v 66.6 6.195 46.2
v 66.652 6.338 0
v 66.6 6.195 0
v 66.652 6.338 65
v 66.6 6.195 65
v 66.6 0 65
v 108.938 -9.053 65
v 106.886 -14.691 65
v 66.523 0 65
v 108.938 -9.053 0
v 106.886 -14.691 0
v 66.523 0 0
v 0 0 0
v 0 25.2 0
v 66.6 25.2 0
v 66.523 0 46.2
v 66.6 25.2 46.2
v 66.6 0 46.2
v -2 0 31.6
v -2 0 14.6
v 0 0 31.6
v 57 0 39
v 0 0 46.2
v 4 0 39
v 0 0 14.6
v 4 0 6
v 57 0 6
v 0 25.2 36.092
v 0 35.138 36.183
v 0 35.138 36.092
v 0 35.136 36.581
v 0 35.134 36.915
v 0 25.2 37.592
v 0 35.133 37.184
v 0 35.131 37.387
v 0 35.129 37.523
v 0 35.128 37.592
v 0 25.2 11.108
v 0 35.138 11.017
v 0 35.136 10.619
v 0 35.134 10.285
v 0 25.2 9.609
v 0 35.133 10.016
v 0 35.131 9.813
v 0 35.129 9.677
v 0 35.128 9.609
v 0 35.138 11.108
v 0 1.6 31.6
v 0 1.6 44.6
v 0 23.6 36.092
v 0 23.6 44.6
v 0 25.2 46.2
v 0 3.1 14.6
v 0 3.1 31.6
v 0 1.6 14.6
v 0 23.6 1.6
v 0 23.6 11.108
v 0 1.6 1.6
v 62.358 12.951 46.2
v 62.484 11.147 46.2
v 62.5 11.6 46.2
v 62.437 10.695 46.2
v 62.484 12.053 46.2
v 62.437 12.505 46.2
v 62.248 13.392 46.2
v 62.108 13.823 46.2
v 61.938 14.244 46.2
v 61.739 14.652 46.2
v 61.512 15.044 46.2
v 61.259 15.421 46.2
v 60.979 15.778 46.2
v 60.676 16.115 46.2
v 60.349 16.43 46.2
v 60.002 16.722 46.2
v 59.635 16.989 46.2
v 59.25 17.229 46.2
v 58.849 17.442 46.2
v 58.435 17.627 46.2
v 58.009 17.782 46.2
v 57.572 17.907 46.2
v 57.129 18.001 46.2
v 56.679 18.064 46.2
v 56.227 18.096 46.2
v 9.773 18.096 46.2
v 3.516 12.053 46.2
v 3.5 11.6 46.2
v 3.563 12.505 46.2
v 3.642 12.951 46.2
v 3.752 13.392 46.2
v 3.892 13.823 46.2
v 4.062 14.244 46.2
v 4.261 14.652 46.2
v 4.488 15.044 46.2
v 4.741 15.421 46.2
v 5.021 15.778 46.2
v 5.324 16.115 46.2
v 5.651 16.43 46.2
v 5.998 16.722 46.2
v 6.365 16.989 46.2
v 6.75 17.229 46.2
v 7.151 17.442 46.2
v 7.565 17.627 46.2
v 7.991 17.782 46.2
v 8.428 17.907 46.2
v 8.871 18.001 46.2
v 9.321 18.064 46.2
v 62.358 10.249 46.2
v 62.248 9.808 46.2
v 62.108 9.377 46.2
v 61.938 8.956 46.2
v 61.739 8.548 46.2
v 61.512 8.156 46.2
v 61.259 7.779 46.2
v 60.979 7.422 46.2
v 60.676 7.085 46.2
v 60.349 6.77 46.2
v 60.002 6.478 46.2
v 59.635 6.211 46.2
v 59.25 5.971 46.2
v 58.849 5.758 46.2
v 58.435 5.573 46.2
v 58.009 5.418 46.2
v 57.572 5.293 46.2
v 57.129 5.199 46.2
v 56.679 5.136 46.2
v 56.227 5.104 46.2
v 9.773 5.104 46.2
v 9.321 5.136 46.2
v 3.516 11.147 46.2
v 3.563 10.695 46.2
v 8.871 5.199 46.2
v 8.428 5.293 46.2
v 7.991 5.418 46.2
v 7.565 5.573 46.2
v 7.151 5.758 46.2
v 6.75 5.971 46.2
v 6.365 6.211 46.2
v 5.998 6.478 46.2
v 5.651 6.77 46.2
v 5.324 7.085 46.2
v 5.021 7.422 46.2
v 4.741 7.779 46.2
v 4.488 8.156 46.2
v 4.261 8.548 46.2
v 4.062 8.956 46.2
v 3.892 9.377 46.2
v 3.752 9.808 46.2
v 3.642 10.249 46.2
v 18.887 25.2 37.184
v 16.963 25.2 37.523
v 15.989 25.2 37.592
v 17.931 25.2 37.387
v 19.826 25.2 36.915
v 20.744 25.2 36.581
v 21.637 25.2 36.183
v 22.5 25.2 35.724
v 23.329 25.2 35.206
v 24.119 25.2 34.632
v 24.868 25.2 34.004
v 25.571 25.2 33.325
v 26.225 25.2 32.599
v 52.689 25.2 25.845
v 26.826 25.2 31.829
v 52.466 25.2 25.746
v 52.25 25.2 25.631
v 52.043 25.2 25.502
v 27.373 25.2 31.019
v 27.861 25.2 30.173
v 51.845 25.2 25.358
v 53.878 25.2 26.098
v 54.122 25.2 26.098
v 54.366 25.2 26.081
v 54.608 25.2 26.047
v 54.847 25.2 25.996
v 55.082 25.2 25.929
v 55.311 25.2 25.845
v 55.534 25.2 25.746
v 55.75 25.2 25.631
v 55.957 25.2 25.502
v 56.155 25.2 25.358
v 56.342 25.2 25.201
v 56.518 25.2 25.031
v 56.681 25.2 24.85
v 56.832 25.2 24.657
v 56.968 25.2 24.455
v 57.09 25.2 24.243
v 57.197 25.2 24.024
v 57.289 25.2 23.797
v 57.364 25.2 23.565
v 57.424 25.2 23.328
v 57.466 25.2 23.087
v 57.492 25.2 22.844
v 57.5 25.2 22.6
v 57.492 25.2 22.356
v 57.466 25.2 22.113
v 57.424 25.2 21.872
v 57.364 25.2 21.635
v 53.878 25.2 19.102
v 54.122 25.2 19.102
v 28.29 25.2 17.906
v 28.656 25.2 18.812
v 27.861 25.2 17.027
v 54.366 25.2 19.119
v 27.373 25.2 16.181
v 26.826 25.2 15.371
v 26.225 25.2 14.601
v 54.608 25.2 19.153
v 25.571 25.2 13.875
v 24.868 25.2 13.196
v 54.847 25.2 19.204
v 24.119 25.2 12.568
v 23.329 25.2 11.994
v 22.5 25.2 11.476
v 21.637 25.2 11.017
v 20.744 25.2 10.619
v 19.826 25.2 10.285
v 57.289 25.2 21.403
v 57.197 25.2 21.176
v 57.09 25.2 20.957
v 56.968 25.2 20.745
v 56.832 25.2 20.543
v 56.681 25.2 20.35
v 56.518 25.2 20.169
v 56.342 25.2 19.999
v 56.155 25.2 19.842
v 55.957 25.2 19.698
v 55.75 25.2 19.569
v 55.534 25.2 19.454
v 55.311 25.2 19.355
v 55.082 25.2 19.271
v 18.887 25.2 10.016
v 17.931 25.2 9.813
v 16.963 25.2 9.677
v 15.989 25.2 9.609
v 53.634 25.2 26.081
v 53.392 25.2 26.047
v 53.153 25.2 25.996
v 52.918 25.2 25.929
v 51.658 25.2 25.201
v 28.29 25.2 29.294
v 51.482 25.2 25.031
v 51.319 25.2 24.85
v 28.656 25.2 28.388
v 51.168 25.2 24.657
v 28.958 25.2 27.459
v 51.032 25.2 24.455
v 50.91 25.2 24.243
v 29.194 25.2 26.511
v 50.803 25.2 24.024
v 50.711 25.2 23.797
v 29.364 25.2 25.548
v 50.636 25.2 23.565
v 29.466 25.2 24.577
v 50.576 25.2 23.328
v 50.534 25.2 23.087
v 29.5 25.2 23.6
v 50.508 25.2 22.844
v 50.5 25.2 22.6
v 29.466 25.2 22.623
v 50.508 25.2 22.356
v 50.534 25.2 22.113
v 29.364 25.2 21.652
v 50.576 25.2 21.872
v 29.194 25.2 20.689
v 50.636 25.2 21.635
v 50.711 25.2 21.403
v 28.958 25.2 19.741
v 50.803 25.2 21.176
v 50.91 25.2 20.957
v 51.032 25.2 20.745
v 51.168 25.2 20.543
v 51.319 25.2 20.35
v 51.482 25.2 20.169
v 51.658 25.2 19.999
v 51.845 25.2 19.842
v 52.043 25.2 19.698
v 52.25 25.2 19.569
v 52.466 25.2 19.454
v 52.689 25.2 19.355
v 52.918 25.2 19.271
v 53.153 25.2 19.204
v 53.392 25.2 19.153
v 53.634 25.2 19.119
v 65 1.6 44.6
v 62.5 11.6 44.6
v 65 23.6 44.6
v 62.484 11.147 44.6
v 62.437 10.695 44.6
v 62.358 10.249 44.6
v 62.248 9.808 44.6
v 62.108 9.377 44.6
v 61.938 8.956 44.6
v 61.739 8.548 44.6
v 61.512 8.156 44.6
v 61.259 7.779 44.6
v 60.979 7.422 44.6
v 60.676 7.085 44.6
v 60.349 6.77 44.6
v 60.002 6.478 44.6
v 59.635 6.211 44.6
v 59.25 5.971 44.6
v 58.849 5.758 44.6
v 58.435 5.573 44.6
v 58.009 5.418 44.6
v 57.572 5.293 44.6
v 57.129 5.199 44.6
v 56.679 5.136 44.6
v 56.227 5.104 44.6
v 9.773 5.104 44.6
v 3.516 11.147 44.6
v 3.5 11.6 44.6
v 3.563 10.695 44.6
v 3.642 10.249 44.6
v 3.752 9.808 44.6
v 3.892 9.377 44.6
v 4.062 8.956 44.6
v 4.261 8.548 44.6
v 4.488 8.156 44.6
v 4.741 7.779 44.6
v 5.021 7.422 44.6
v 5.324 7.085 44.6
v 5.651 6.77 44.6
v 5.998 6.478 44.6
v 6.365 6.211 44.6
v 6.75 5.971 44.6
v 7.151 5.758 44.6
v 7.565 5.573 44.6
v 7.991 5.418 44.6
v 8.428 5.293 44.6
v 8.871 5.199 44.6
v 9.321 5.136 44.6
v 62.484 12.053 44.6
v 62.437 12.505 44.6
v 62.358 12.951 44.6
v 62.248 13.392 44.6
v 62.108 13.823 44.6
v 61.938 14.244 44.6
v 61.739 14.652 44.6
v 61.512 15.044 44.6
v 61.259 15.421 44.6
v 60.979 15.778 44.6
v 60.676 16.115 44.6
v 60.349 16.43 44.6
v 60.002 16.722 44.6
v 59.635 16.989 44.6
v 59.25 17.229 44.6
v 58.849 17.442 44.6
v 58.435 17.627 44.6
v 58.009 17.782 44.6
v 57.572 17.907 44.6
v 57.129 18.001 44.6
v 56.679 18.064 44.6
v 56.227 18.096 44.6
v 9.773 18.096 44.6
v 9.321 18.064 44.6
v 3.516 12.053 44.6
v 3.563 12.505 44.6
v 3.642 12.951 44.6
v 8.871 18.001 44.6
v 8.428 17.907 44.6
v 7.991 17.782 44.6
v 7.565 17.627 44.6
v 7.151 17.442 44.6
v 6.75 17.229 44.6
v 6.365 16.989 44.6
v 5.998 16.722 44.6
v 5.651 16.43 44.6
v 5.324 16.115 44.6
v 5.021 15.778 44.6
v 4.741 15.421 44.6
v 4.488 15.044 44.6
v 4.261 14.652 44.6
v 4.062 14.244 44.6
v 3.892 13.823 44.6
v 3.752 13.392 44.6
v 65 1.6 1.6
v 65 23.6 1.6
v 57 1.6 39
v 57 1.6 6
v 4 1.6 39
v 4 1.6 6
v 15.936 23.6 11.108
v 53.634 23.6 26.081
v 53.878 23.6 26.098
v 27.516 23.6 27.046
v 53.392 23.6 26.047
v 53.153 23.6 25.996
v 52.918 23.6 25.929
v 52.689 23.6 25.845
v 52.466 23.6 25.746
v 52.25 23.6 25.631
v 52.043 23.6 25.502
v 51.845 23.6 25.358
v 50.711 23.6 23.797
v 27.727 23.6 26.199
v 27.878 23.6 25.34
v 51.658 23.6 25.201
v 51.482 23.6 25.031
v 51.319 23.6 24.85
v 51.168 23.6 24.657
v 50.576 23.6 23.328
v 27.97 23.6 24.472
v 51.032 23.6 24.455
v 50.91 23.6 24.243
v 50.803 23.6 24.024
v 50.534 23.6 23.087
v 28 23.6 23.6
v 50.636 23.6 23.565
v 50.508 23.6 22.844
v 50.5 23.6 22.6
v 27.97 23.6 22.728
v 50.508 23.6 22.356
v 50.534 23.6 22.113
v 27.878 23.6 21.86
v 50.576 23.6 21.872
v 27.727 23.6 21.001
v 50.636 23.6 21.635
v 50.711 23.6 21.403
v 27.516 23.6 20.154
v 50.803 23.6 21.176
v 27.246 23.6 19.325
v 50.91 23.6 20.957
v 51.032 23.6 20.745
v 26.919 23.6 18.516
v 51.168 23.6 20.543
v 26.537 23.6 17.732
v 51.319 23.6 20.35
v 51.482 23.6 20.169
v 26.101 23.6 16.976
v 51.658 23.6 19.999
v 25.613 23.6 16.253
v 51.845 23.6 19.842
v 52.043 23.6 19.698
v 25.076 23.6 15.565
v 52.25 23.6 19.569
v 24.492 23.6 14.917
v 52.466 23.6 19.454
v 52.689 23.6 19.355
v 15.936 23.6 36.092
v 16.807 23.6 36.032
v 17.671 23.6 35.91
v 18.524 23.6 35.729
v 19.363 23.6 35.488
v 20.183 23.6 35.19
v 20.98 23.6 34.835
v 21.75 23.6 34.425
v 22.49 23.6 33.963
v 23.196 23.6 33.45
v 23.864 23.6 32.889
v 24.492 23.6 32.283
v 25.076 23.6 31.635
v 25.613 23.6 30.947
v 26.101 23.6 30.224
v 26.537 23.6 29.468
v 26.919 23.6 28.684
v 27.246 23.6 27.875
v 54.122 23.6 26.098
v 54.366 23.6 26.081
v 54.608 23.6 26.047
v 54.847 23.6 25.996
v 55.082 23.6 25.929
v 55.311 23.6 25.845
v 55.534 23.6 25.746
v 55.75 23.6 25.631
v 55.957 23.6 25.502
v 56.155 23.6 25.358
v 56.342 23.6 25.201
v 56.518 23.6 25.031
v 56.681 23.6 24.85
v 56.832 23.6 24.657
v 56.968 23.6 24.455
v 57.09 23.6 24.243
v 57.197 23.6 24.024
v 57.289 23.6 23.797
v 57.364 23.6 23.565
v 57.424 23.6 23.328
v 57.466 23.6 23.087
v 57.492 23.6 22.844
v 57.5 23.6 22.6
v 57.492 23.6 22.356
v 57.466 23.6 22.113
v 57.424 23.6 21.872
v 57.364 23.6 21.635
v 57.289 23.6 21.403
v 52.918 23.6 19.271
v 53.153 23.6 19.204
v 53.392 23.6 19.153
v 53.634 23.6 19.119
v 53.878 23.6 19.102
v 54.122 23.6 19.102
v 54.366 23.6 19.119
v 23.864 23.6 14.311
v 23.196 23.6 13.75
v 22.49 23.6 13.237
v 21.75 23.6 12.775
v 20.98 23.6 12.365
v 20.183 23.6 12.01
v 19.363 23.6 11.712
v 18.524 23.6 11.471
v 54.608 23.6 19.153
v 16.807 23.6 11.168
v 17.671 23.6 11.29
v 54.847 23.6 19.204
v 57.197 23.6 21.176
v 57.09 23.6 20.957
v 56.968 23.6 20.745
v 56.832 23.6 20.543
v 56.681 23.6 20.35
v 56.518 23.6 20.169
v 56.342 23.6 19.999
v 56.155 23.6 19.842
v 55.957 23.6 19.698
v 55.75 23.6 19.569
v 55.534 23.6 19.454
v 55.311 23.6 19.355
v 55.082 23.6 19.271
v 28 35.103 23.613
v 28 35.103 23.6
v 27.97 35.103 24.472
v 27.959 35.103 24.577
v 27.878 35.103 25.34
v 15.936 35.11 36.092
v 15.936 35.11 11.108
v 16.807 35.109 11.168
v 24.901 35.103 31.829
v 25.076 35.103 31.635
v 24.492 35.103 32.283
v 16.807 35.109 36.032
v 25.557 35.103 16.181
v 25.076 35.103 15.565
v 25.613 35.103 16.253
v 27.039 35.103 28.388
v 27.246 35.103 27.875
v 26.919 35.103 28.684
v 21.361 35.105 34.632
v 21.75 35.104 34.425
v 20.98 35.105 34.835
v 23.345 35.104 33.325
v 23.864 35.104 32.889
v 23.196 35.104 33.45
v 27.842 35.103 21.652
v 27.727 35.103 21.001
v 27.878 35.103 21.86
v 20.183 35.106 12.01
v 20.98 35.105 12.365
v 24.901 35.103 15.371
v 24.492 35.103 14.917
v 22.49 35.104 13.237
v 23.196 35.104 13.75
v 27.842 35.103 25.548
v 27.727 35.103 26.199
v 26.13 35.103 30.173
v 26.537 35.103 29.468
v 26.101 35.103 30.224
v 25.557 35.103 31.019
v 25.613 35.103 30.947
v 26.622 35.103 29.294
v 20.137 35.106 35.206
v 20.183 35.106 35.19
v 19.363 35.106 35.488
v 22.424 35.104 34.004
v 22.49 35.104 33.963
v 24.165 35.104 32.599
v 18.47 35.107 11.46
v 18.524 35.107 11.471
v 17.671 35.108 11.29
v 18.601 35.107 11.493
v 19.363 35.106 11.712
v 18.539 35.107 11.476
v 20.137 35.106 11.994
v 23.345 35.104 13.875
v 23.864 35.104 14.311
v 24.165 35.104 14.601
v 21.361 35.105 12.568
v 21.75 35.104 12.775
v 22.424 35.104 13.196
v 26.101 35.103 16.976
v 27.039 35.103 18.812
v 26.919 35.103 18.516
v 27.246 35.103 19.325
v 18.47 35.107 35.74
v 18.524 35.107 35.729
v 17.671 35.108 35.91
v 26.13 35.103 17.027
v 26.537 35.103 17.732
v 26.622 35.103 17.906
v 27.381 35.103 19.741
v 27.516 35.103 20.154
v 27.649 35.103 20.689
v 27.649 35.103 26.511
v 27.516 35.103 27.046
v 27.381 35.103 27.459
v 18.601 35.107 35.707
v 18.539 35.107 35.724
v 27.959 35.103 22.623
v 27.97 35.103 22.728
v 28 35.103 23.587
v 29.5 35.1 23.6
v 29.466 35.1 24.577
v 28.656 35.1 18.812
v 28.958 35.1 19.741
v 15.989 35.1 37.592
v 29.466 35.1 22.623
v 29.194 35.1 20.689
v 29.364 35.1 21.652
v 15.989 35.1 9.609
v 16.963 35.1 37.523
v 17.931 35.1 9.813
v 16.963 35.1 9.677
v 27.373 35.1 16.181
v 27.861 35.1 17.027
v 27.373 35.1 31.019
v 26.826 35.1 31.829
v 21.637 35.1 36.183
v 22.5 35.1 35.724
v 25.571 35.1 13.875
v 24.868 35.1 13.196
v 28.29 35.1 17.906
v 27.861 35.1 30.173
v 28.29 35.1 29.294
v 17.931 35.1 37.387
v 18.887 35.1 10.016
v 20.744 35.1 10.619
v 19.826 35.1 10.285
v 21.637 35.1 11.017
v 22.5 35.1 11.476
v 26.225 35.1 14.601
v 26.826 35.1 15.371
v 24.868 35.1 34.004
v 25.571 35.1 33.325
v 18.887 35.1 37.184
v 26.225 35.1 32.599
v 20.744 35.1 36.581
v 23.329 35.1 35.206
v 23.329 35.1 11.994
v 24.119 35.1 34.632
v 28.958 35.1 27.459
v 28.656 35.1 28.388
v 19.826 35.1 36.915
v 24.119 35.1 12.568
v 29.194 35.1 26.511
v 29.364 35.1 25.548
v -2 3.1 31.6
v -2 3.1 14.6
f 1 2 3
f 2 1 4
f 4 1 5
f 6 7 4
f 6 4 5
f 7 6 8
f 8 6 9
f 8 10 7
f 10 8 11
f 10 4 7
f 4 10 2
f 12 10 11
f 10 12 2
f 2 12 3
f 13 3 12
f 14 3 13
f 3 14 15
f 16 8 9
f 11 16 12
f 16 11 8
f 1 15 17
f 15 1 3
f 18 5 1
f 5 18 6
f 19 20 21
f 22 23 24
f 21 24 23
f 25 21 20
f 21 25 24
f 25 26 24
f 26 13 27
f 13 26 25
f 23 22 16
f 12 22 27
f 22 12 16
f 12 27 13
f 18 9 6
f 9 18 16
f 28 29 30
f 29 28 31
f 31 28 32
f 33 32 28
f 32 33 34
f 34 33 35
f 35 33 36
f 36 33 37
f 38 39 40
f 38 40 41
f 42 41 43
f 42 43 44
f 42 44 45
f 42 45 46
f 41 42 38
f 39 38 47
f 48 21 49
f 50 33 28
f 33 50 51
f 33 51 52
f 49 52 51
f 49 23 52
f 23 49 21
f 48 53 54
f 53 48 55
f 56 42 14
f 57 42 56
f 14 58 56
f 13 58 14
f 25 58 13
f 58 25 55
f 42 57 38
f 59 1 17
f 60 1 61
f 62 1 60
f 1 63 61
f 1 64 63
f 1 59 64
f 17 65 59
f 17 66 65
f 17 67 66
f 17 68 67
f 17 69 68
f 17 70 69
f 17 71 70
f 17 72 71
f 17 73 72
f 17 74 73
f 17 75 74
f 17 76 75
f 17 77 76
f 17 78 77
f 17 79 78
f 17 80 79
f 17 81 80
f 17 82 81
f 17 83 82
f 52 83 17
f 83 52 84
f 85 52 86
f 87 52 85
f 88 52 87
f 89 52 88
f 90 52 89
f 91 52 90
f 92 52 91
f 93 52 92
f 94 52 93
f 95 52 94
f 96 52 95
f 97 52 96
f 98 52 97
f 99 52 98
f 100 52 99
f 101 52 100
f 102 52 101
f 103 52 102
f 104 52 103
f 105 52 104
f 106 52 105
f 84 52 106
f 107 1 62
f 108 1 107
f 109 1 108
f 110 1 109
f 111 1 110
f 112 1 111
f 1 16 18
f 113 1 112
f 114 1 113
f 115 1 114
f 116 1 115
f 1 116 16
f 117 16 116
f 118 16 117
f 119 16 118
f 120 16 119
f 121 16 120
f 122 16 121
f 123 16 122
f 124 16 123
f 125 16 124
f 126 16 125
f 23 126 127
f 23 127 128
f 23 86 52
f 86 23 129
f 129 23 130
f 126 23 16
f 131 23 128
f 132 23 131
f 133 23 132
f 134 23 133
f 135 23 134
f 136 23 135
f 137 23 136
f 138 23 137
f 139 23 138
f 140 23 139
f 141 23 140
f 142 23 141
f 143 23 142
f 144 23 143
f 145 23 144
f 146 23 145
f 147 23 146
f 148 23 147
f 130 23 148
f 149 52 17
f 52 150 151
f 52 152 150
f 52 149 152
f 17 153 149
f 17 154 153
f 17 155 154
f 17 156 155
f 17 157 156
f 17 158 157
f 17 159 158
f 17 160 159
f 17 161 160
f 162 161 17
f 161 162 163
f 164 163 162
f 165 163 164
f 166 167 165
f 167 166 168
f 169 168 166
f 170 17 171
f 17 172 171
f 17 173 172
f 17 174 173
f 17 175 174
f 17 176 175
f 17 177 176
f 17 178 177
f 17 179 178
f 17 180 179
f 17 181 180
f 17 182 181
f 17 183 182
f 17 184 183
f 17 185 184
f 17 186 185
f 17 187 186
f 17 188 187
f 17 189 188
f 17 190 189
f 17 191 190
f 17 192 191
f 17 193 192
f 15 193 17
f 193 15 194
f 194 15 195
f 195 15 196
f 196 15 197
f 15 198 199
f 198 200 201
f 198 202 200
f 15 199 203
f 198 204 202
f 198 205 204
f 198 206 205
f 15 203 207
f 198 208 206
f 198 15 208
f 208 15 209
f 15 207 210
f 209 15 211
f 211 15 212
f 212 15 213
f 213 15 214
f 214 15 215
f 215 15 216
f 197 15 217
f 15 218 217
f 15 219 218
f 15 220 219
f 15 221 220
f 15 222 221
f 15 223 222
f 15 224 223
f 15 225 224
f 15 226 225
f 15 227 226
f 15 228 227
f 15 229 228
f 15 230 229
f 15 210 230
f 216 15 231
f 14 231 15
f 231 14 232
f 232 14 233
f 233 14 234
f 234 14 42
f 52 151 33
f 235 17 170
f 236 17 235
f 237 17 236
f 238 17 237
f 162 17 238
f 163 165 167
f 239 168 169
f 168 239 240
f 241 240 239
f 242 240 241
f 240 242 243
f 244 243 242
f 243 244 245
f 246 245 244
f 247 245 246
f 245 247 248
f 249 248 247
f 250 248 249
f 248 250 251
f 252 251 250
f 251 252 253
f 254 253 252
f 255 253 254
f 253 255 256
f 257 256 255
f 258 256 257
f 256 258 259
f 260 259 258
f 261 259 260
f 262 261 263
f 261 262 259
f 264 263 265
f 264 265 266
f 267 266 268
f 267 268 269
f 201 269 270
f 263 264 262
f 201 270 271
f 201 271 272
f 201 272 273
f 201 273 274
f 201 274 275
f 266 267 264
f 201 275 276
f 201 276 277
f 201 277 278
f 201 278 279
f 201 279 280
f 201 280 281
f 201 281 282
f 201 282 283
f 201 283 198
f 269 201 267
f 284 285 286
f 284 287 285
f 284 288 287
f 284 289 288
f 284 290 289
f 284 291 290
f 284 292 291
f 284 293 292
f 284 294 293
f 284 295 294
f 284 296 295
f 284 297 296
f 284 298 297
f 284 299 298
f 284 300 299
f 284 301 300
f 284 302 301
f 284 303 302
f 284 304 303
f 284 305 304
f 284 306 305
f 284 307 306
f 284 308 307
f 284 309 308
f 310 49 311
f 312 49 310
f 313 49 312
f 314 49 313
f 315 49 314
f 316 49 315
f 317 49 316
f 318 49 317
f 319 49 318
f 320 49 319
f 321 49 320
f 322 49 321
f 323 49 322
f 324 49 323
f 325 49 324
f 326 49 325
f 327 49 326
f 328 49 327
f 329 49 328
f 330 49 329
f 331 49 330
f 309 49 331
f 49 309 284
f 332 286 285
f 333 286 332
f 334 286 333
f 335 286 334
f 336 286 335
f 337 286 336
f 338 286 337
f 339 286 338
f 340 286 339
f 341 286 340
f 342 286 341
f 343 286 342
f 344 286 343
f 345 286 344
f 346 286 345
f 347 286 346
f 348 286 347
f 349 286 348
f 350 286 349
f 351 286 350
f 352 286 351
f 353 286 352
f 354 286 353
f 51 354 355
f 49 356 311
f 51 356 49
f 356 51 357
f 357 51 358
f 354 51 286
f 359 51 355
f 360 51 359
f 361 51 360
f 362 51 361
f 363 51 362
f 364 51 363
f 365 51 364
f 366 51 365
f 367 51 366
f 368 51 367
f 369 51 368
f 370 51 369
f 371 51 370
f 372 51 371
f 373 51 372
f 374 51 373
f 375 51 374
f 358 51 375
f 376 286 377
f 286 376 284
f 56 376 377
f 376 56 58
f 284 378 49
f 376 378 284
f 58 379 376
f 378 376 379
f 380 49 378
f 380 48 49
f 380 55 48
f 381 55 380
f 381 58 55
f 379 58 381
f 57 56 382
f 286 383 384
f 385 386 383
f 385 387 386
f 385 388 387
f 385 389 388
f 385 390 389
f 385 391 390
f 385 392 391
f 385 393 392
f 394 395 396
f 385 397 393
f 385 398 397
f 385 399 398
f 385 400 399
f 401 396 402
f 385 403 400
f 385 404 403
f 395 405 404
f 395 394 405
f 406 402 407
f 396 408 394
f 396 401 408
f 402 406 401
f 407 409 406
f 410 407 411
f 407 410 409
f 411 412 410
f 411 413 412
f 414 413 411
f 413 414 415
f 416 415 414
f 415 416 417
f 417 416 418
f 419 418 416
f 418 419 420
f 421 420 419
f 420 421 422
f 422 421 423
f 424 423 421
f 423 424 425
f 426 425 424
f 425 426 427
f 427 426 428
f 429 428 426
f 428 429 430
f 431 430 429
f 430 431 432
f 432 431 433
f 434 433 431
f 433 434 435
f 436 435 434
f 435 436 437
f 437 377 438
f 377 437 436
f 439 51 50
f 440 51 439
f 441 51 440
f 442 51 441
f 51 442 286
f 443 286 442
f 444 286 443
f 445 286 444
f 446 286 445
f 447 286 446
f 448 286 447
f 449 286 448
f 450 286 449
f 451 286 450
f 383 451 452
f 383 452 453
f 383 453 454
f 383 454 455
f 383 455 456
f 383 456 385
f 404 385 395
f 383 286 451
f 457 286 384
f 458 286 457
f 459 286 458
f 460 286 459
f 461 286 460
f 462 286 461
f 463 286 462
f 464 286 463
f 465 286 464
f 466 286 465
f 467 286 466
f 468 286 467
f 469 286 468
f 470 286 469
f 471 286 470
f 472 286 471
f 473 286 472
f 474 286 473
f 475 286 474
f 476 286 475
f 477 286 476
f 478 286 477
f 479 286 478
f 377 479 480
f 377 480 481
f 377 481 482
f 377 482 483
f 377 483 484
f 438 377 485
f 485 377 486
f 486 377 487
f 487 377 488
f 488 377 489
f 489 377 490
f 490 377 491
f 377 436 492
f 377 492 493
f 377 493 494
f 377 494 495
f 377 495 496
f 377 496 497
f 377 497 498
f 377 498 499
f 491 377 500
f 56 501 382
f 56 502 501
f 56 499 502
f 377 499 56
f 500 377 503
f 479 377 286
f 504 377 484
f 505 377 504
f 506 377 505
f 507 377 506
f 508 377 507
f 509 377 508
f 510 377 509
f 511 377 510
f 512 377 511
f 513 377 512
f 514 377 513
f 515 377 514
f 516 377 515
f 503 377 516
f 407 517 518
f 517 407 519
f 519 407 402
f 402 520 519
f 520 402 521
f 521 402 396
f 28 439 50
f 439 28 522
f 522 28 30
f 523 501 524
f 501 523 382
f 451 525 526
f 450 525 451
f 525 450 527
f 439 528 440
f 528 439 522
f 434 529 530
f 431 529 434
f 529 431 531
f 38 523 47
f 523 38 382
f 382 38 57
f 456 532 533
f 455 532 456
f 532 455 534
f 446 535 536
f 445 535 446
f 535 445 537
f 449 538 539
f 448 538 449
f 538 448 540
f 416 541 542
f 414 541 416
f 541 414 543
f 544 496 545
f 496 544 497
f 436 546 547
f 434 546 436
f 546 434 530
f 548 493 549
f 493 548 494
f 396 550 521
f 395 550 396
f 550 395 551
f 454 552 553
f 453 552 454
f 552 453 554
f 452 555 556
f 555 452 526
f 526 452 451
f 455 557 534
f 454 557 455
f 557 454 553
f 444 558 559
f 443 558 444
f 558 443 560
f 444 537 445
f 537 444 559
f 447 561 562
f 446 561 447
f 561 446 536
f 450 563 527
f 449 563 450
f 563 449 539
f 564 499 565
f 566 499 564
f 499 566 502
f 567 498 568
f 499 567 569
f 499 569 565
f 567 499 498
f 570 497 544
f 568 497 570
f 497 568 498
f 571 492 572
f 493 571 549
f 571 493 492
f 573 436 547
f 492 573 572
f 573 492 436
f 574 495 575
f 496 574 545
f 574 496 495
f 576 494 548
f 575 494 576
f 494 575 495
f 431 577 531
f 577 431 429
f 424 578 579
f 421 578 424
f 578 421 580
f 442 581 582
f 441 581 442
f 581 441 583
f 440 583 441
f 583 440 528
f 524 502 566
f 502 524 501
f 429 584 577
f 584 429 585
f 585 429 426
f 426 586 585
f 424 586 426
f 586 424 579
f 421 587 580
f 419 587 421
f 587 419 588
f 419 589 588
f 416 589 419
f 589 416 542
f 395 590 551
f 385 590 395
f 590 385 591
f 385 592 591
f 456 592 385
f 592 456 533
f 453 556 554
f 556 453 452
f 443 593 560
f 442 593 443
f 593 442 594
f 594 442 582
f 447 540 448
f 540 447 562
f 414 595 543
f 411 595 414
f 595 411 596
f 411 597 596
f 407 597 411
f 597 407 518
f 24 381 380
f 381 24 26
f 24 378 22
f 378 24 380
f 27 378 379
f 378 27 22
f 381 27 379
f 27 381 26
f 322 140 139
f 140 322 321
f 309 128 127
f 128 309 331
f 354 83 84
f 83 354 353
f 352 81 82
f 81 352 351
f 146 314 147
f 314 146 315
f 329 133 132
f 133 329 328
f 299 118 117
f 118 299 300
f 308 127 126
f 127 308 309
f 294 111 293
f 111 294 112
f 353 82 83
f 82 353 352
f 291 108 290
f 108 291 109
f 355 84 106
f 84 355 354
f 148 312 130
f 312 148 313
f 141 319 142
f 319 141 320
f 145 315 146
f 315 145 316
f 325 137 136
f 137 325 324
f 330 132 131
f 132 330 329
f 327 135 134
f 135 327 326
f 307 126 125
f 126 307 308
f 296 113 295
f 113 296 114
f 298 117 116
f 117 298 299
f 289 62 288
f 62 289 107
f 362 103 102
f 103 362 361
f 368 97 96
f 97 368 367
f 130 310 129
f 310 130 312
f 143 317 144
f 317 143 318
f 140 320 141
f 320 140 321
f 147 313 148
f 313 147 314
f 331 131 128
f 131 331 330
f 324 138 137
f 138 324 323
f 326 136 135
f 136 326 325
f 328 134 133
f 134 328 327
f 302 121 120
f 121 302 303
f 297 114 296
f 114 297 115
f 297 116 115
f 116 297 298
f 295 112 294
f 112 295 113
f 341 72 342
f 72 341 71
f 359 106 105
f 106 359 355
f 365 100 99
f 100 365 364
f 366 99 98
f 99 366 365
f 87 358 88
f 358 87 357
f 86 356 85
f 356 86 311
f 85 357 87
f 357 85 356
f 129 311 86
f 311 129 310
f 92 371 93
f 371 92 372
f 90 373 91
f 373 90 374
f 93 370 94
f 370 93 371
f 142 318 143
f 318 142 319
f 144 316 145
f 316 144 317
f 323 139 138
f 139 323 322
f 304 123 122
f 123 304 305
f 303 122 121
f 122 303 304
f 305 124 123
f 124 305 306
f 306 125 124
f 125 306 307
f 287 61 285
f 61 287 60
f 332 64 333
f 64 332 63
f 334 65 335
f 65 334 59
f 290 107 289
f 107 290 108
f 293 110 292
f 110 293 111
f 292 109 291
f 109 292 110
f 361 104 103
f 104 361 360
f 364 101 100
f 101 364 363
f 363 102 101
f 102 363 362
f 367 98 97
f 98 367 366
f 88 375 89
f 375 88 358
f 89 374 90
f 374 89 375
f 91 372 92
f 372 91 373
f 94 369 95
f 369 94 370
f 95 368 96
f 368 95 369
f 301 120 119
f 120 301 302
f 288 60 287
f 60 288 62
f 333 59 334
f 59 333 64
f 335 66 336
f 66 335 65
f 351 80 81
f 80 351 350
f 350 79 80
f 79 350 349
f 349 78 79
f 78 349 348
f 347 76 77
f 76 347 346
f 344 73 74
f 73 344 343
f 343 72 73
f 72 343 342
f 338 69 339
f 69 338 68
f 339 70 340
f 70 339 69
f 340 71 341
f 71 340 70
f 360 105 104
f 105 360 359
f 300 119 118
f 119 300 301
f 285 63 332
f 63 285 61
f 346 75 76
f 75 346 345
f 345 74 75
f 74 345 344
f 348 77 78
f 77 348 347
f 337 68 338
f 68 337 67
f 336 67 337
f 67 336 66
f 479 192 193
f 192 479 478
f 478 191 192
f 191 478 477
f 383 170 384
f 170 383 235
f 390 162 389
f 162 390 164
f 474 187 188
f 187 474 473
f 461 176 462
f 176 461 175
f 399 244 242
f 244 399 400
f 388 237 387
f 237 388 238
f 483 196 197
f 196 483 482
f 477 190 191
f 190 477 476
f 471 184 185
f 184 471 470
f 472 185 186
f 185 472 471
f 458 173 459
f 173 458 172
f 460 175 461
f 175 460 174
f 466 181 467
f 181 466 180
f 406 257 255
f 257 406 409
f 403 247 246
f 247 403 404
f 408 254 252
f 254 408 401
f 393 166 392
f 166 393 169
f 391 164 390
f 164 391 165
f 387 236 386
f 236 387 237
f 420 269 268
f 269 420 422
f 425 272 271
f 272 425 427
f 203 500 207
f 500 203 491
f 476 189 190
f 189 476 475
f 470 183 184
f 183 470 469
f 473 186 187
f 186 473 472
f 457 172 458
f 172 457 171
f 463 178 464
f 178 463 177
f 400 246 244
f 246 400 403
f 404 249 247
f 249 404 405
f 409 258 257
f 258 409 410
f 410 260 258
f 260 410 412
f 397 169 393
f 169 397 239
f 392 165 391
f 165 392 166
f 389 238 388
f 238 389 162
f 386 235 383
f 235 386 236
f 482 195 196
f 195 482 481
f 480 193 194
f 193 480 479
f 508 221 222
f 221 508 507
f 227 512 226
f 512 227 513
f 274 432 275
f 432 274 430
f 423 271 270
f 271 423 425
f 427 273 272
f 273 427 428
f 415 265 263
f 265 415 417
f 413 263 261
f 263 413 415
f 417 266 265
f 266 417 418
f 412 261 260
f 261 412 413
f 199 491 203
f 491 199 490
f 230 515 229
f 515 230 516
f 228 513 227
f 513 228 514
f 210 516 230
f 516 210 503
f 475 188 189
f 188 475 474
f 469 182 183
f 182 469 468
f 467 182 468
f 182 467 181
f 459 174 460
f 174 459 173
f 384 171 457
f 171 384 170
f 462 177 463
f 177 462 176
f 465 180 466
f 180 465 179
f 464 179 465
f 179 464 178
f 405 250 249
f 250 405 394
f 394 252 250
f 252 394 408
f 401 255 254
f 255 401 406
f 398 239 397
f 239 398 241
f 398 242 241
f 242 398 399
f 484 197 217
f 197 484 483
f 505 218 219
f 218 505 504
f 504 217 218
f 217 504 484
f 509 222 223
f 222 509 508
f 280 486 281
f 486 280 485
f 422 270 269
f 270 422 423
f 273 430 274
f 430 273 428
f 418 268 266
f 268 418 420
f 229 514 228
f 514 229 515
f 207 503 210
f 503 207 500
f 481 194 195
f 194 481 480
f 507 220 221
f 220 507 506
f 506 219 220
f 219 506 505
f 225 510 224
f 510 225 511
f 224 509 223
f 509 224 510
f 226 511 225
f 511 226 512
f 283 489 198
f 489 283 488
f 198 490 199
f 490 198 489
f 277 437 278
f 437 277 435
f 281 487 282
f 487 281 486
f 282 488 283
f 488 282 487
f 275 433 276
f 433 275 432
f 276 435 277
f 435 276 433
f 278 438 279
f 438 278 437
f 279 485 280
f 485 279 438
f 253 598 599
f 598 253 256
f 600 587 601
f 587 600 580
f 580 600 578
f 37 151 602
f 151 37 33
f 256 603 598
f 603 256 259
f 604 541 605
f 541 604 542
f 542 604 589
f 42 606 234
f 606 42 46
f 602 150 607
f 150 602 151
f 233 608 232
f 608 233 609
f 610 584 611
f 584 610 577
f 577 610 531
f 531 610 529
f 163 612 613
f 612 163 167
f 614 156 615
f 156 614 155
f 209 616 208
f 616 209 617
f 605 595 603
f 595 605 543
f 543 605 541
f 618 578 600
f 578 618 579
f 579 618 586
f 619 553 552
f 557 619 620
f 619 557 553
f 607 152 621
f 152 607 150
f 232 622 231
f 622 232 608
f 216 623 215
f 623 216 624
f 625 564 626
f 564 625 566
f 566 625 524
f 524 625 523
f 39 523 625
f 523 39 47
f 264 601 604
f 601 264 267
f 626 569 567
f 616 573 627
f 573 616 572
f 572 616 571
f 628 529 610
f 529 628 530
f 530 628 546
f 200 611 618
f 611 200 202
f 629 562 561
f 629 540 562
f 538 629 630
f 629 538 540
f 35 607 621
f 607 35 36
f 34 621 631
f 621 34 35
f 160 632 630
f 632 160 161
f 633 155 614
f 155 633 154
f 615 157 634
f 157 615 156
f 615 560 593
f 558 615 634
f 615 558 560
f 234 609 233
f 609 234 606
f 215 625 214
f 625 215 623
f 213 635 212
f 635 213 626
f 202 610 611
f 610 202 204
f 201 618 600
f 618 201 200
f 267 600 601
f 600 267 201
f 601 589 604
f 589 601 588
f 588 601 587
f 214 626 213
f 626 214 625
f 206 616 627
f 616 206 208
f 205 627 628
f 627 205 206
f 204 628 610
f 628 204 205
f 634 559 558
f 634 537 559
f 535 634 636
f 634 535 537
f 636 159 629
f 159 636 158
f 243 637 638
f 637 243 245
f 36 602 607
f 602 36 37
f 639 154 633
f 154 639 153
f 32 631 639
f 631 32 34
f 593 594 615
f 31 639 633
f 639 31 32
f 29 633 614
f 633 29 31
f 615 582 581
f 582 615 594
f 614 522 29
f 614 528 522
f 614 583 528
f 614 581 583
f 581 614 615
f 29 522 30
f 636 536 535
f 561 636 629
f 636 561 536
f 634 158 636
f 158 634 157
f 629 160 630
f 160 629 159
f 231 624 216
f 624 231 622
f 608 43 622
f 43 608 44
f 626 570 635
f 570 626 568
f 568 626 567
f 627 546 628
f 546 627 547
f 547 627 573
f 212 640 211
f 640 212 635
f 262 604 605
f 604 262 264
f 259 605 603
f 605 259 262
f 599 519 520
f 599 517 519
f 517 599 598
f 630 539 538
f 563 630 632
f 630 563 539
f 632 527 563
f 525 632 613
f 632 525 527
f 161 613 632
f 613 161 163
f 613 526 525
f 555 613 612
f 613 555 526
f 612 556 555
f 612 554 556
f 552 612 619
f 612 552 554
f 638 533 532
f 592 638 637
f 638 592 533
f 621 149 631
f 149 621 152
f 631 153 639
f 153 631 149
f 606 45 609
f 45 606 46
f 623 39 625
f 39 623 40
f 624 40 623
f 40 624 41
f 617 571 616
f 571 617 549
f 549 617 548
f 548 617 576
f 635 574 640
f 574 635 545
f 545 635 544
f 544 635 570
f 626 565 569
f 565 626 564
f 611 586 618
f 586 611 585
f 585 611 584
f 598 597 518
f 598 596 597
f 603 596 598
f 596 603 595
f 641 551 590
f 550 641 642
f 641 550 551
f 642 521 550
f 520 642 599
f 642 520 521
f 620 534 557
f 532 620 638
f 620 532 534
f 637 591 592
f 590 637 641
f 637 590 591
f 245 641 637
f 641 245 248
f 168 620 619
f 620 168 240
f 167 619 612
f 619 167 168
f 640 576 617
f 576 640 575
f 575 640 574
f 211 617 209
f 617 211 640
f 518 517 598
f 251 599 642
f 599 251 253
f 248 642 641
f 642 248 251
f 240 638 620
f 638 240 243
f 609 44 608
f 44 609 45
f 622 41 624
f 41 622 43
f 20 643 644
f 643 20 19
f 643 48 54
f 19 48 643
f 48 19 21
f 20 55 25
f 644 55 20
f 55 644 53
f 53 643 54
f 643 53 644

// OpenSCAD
// Holder for Xiaomi Yi 4K action camera for Zhiyun Smooth Q

$fn=90;

nozzleD=0.4;
wallCount=4;
wallThickness=wallCount*nozzleD;
wallThickness2=wallThickness*2;
e=0.1; // epsilon
e2=e*2;

cameraHolder();

module cameraHolder() {
    difference() {
        cube(holderBody);
        translate([-e,wallThickness,wallThickness])
            cameraBody();
        cameraLenseCut();
        screenCut();
        okButtonCut();
        powerButtonCut();
    }
    hook();
    lensProtection();
    holderPlate();
}

cameraBodyX=65;
cameraBodyY=22;
cameraBodyZ=43;
cameraBody=[cameraBodyX+e,cameraBodyY,cameraBodyZ];
holderBody=[cameraBodyX+wallThickness,cameraBodyY+wallThickness2,cameraBodyZ+wallThickness2];

module cameraBody() {
    cube(cameraBody);
}

cameraLenseD=24+1;
cameraLenseR=cameraLenseD/2;
cameraLenseX=3+cameraLenseR;
cameraLenseZ=9.5+wallThickness+cameraLenseR;
cameraLenseY=wallThickness2+cameraBodyY+e;

module cameraLense() {
    translate([cameraLenseX,cameraLenseY+30,cameraLenseZ])
        rotate([90,0,0])
            cylinder(d=cameraLenseD,h=wallThickness2+30);
}

module cameraLenseCut() {
    hull() {
        cameraLense();
        translate([-100,0,0]) cameraLense();
    }
}

module screenCut() {
    translate([4,-e,6])
        cube([53,wallThickness+e2,33]);
}

module okButtonCut() {
    hull() {
        translate([10, 10+wallThickness, cameraBodyZ+wallThickness-e])
            cylinder(d=13,wallThickness+e2);
        translate([56, 10+wallThickness, cameraBodyZ+wallThickness-e])
            cylinder(d=13,wallThickness+e2);
    }
}

module powerButtonCut() {
    translate([54,cameraBodyY+wallThickness2+e,21+wallThickness])
    rotate([90,0,0])
        cylinder(d=7,h=wallThickness+e2);
}

module hook() {
    x=2;
    y=1.5;
    z=17;
    translate([-x,0,cameraBodyZ/2-z/2+wallThickness])
        cube([x,y+wallThickness,z]);
}

module lensProtection() {
    h=10;
    d=28;
    difference() {
        hull() {
            translate([cameraLenseX,cameraLenseY+h-2*e,cameraLenseZ])
                rotate([90,0,0])
                    cylinder(d=d,h=h);
            translate([-100,cameraLenseY+h,cameraLenseZ])
                rotate([90,0,0])
                    cylinder(d=d,h=h);            
        }
        cameraLenseCut();
        translate([-200,0,0]) cube([200,200,200]);
    }
}

module holderPlate() {
    x=45;
    y=6;
    z=65;
    difference() {
        translate([cameraBodyX+wallThickness-y/3,wallThickness-0.9,0])
            rotate([0,0,-20])
                cube([x,y,z]);
        cube([cameraBodyX+wallThickness,cameraBodyY,cameraBodyZ*2]);
    }
}
